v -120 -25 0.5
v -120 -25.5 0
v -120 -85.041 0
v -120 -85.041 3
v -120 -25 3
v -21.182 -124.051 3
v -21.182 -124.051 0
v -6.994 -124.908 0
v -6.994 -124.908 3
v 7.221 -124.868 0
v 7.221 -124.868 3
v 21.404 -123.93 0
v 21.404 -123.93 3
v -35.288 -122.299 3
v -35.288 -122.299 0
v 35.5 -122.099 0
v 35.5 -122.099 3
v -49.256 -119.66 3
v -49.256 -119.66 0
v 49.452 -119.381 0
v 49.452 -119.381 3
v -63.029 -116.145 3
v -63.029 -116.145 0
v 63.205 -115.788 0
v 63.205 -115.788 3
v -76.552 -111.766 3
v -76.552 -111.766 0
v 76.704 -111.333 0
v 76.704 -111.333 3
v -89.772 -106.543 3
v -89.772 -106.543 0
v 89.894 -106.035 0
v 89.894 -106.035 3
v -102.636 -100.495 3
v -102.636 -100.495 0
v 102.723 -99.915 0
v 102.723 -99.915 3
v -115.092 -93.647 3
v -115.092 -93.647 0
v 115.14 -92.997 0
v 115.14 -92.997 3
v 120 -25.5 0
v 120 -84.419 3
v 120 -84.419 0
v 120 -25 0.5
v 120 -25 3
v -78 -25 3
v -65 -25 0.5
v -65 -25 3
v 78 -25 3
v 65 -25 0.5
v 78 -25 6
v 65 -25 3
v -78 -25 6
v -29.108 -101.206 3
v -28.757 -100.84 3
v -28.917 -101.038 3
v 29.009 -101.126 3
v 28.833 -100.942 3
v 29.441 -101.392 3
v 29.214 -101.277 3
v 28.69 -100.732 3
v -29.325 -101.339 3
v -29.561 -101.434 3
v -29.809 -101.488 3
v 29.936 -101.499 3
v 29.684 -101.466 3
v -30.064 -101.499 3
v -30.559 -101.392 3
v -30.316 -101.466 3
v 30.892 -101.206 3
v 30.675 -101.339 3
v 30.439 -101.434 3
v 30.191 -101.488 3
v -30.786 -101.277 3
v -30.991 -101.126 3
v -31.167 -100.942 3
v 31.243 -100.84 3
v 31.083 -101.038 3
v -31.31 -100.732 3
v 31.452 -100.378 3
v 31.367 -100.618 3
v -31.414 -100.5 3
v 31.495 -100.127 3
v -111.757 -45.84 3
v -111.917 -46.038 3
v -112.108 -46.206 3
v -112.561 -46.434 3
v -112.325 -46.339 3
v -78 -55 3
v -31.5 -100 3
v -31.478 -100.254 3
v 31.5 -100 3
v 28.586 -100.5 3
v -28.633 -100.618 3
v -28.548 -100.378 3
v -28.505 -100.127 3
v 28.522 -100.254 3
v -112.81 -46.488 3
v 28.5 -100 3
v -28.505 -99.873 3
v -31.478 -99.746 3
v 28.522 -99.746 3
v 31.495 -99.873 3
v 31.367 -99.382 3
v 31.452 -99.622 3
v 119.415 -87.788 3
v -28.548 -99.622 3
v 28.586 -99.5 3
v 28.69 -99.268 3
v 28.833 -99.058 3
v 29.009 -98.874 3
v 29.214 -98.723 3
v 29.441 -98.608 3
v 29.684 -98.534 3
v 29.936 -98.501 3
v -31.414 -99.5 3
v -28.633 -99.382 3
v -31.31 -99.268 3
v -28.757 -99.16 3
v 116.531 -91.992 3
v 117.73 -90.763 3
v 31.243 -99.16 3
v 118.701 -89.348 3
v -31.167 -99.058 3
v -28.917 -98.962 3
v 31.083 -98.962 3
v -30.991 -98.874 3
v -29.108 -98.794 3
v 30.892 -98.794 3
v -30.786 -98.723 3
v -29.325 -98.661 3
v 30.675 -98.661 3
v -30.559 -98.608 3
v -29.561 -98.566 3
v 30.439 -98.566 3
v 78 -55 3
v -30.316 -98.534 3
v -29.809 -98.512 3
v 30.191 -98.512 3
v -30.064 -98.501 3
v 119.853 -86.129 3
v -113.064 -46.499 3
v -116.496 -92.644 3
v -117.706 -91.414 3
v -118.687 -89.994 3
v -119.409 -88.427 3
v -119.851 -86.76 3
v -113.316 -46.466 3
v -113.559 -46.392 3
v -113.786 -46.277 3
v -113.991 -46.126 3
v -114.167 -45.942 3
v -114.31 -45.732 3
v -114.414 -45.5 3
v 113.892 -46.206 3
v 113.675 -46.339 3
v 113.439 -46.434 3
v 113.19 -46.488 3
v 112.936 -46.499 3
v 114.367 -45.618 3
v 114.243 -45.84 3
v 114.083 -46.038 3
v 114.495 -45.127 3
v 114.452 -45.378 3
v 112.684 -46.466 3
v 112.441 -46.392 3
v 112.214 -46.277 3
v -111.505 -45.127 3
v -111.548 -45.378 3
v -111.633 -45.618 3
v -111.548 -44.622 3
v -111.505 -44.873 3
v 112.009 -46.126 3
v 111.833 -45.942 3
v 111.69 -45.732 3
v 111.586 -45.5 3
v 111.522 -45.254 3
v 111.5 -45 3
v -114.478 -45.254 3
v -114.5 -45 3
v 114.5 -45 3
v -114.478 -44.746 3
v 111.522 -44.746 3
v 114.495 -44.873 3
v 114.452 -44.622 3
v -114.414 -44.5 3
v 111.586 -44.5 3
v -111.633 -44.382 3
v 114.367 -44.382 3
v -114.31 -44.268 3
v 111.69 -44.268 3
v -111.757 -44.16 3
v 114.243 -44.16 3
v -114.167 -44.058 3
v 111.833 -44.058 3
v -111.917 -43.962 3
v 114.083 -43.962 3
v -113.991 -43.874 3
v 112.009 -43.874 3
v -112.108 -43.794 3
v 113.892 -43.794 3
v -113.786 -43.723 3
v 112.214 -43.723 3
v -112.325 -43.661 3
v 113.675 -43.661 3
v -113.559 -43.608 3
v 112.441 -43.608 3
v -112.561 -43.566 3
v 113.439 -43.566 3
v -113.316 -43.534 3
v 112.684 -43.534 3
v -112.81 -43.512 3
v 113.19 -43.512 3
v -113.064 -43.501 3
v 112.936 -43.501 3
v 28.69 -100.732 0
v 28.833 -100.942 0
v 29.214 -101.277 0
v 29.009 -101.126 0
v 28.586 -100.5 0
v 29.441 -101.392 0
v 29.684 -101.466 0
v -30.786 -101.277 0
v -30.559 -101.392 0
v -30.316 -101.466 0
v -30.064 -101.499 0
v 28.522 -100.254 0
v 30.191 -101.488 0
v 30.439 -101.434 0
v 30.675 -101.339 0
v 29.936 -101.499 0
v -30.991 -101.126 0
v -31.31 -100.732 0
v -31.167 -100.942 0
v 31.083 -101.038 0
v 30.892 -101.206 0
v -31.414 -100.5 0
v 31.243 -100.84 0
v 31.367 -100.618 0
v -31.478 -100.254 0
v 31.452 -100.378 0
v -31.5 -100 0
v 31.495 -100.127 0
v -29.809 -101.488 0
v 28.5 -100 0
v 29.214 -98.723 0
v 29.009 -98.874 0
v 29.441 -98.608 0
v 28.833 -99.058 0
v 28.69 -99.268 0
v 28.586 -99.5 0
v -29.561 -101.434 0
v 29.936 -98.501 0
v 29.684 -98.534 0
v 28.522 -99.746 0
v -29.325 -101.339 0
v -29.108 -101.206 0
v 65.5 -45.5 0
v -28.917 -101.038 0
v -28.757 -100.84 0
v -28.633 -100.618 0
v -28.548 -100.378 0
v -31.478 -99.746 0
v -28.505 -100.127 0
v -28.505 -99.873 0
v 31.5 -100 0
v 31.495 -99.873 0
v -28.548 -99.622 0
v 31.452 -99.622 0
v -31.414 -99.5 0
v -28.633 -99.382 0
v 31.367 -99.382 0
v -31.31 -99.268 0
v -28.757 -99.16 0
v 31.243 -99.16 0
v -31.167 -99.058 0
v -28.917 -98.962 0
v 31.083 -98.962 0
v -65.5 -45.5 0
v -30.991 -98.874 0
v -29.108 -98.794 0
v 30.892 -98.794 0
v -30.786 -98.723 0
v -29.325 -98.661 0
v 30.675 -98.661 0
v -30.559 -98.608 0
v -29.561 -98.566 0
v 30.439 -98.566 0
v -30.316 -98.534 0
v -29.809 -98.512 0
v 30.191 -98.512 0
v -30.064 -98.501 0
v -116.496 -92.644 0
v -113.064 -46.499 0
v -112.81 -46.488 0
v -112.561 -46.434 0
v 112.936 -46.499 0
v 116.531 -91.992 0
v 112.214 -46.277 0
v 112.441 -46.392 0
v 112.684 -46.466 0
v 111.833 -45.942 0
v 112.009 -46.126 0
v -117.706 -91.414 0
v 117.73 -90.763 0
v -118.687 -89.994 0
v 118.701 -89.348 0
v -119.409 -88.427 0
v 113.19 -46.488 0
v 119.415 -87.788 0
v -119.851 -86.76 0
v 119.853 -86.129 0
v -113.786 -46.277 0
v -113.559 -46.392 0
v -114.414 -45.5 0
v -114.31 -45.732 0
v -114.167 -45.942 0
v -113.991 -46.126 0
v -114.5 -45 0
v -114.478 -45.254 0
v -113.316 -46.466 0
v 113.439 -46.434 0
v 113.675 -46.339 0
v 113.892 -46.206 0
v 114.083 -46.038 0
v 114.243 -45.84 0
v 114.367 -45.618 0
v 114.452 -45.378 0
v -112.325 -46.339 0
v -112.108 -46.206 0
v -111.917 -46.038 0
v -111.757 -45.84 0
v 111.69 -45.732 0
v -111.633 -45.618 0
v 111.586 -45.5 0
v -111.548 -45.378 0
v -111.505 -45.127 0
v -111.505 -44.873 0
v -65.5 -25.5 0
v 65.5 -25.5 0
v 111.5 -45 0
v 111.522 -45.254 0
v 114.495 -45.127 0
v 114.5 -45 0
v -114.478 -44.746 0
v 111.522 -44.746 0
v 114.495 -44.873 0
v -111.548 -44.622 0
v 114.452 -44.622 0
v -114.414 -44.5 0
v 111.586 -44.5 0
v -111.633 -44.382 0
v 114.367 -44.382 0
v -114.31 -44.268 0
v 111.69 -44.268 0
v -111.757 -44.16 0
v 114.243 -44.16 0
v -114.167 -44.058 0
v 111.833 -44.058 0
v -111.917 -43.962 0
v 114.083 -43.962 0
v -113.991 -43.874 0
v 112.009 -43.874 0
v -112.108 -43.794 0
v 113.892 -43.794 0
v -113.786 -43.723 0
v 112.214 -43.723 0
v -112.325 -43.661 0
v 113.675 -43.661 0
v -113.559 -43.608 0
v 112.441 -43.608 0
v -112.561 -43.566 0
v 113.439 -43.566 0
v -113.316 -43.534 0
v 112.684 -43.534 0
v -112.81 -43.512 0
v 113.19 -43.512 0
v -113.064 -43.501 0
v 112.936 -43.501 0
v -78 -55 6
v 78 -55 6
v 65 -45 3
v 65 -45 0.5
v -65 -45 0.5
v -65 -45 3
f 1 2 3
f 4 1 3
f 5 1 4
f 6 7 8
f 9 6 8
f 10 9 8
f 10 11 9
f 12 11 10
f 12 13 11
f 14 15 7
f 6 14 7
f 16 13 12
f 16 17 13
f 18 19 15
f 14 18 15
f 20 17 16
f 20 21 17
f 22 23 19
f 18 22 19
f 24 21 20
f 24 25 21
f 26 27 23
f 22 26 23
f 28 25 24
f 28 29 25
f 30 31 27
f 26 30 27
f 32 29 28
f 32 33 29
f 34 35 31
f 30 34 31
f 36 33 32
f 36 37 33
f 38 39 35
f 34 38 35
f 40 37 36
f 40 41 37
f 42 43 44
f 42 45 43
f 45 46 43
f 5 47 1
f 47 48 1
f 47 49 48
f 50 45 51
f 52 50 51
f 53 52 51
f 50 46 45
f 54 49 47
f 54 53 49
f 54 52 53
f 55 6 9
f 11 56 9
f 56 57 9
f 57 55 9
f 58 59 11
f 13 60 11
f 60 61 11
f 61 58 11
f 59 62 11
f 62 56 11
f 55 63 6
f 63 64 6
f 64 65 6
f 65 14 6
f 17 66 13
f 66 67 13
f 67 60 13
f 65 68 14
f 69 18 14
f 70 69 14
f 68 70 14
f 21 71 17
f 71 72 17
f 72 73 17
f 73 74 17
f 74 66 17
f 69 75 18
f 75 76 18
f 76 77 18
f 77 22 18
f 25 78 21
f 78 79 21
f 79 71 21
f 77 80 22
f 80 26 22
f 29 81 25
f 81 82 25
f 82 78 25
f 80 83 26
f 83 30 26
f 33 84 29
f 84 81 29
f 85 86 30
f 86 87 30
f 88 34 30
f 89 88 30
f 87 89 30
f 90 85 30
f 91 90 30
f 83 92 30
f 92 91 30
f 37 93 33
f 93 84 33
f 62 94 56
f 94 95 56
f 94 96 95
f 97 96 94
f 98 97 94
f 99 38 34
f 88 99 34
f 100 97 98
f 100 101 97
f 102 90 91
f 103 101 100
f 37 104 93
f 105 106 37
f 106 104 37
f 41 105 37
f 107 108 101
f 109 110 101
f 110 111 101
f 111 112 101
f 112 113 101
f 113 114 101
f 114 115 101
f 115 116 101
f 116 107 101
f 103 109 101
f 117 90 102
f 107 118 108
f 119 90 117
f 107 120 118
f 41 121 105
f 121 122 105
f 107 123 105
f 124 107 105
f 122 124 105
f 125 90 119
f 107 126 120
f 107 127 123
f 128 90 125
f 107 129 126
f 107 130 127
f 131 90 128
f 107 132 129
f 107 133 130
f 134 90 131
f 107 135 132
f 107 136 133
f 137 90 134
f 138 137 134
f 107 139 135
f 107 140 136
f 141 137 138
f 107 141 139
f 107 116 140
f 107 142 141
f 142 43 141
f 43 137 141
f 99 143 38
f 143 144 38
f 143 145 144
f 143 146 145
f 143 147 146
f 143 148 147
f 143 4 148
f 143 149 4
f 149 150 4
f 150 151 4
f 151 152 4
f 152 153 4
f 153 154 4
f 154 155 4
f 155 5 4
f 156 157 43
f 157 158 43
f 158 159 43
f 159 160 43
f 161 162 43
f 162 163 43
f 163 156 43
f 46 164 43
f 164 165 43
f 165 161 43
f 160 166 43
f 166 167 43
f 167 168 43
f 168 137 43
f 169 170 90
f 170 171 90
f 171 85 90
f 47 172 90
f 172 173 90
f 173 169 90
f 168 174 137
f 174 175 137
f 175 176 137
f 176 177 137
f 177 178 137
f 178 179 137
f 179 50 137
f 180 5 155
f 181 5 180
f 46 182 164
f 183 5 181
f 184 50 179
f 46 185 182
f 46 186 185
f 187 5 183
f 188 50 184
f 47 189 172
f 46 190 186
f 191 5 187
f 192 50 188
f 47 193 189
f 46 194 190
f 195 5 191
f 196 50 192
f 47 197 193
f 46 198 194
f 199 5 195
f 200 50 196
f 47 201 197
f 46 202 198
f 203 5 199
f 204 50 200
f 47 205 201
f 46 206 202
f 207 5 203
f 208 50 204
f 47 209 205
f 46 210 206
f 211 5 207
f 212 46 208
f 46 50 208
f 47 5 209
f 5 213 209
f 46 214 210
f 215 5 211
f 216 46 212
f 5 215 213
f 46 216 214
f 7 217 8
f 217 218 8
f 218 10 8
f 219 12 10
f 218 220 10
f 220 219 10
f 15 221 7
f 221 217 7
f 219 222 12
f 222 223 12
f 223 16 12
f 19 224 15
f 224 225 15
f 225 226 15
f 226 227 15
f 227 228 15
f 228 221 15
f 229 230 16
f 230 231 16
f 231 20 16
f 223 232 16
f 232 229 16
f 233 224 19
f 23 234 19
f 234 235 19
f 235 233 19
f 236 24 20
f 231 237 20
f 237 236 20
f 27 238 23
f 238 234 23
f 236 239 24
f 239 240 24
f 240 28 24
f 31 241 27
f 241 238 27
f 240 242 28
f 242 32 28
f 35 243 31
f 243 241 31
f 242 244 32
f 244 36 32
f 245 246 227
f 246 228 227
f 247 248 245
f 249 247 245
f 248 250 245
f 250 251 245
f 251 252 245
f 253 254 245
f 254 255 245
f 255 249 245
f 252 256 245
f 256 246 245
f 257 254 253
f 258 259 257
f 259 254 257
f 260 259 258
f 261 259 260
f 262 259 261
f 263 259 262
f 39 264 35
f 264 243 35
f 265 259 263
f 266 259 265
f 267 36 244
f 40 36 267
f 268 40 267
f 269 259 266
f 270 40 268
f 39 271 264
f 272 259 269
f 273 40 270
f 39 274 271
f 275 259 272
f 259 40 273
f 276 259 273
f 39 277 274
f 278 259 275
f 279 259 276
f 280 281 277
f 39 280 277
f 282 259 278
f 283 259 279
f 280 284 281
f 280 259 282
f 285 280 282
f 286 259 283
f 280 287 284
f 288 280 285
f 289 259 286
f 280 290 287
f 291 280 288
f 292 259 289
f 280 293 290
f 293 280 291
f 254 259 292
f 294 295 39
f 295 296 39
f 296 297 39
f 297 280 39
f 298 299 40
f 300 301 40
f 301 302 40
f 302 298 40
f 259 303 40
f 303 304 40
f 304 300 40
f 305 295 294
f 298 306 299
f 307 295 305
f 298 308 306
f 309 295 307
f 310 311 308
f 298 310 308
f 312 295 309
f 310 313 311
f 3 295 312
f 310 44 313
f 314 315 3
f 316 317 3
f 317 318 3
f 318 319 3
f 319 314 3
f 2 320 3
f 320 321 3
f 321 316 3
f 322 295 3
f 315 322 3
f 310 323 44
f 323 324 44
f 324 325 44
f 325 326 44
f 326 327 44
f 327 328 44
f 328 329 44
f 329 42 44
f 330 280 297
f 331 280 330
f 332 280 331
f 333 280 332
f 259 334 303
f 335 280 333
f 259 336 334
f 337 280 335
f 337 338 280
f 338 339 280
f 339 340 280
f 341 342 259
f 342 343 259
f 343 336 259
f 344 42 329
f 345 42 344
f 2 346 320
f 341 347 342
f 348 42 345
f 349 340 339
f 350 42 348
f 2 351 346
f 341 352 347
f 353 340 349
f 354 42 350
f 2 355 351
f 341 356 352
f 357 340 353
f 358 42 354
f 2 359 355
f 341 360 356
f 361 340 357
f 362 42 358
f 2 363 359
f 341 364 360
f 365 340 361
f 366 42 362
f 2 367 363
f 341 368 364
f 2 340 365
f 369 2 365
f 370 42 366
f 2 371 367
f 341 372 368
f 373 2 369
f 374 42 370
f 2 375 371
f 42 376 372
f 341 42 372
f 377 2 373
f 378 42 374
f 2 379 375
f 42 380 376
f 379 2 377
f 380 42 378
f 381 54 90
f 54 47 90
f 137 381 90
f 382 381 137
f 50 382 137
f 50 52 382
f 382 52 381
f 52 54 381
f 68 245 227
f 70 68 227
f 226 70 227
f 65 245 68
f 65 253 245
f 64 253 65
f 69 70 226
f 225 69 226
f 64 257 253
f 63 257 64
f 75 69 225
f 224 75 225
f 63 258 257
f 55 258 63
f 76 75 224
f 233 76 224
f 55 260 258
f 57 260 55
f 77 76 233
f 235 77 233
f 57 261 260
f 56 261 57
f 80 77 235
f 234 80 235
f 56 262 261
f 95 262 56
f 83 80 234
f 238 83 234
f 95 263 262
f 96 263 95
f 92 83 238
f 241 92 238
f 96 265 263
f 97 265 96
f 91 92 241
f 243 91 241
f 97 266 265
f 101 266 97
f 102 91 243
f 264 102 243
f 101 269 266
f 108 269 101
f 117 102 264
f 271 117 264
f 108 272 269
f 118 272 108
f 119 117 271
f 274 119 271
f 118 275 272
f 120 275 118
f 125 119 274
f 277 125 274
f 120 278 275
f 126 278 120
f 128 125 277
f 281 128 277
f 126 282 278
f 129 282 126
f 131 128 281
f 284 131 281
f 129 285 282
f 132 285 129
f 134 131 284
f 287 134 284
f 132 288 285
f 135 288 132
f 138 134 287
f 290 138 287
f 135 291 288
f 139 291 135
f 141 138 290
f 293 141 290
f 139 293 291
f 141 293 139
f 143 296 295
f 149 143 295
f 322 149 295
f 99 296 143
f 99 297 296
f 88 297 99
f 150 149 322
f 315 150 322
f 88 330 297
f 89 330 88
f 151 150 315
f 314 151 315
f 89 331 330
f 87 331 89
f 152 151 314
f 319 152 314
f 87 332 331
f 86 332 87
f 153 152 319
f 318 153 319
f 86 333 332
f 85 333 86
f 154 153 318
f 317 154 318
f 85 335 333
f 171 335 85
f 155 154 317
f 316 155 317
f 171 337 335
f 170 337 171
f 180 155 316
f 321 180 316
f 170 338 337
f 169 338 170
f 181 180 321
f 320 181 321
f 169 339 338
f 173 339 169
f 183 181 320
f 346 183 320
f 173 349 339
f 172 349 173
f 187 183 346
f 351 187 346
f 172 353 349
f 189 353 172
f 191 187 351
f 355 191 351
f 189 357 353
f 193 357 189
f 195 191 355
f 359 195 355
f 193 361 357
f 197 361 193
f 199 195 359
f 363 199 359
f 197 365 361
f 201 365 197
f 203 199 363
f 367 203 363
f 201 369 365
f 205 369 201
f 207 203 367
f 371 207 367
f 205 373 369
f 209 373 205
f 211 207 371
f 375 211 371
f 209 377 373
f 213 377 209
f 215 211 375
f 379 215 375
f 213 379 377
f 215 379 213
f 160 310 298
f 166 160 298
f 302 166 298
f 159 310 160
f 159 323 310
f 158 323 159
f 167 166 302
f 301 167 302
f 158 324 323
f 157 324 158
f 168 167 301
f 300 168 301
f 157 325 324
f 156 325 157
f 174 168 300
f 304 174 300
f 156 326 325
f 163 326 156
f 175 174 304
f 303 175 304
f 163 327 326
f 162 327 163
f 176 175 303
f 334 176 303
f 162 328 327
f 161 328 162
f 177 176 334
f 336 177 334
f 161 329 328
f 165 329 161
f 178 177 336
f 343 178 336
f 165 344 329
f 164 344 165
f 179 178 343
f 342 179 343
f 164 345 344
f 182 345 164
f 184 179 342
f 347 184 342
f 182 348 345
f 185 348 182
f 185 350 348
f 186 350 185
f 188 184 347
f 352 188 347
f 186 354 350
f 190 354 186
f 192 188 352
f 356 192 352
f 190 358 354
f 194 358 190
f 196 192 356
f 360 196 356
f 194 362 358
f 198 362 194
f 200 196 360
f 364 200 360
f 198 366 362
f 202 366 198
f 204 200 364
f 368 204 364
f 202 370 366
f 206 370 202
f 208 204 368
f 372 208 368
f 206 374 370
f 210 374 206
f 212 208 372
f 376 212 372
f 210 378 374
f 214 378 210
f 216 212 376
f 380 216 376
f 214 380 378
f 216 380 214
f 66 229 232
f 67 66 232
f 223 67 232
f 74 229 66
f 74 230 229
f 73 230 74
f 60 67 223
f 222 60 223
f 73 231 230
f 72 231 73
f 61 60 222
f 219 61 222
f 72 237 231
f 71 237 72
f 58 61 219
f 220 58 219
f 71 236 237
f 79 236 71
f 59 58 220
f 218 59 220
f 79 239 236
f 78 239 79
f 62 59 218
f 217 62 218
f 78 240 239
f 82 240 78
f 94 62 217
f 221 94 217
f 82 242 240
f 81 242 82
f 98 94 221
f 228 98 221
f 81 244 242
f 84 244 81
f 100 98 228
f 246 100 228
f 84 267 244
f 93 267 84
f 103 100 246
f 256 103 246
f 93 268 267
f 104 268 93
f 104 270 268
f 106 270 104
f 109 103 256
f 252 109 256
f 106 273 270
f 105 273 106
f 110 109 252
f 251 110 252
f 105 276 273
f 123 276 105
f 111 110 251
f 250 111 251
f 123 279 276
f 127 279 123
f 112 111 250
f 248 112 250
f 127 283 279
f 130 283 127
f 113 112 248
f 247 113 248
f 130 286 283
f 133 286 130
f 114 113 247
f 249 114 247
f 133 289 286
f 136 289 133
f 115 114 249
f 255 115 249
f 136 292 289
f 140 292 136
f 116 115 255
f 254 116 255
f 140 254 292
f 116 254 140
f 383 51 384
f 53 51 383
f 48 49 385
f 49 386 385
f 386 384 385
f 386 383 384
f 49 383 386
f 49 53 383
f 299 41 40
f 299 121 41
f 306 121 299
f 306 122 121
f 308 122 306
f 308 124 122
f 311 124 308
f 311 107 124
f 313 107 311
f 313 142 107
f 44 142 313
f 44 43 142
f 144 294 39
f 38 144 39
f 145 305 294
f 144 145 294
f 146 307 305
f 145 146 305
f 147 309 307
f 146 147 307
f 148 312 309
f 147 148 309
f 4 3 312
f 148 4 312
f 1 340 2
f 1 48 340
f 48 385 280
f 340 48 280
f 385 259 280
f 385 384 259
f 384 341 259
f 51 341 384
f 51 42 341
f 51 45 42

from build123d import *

# Parameters (mm, degrees)
EXTRUDE_1_DEPTH     = 3
SKETCH_2_W          = 156
SKETCH_2_H          = 30
EXTRUDE_2_DEPTH     = 3
SKETCH_3_R          = 1.5
CUT_EXTRUDE_1_DEPTH = 3
SKETCH_4_W          = 130
SKETCH_4_H          = 20
CUT_EXTRUDE_2_DEPTH = 3
FILLET_1_R          = 10
CHAMFER_1_SIZE      = 0.5


with BuildPart() as part:
    # 草图1 → 凸台-拉伸1 (new body)
    with BuildSketch(Plane.XY):
        with BuildLine():
            Line((-120, -25), (120, -25))
            Line((120, -25), (120, -90))
            ThreePointArc((120, -90), (0.09506488, -125.000515914), (-120, -90.658049905))
            Line((-120, -90.658049905), (-120, -25))
        make_face()
    extrude(amount=EXTRUDE_1_DEPTH)

    # 草图2 → 凸台-拉伸2 (add)
    with BuildSketch(Plane.XY.offset(3)):
        with Locations((0, -40)):
            Rectangle(SKETCH_2_W, SKETCH_2_H)
    extrude(amount=EXTRUDE_2_DEPTH)

    # 草图3 → 切除-拉伸1 (cut)
    with BuildSketch(Plane(origin=(0, 0, 0), x_dir=(-1, 0, 0), z_dir=(0, 0, -1))):
        with Locations((30, -100)):
            Circle(SKETCH_3_R)
        with Locations((113, -45)):
            Circle(SKETCH_3_R)
        with Locations(Location((-113, -45, 0), (0, 0, 180))):
            Circle(SKETCH_3_R)
        with Locations(Location((-30, -100, 0), (0, 0, 180))):
            Circle(SKETCH_3_R)
    extrude(amount=-CUT_EXTRUDE_1_DEPTH, mode=Mode.SUBTRACT)

    # 草图4 → 切除-拉伸2 (cut)
    with BuildSketch(Plane(origin=(0, 0, 0), x_dir=(-1, 0, 0), z_dir=(0, 0, -1))):
        with Locations((0, -35)):
            Rectangle(SKETCH_4_W, SKETCH_4_H)
    extrude(amount=-CUT_EXTRUDE_2_DEPTH, mode=Mode.SUBTRACT)

    # 圆角1
    fillet_1_edges = [part.edges().sort_by_distance(p)[0] for p in [
        (120, -90, 1.5),
        (-120, -90.658049905, 1.5),
    ]]
    fillet(fillet_1_edges, radius=FILLET_1_R)

    # 倒角1
    chamfer_1_edges = [part.edges().sort_by_distance(p)[0] for p in [
        (-92.5, -25, 0),
        (92.5, -25, 0),
        (65, -35, 0),
        (0, -45, 0),
        (-65, -35, 0),
    ]]
    chamfer(chamfer_1_edges, length=CHAMFER_1_SIZE)


solid = part.part
